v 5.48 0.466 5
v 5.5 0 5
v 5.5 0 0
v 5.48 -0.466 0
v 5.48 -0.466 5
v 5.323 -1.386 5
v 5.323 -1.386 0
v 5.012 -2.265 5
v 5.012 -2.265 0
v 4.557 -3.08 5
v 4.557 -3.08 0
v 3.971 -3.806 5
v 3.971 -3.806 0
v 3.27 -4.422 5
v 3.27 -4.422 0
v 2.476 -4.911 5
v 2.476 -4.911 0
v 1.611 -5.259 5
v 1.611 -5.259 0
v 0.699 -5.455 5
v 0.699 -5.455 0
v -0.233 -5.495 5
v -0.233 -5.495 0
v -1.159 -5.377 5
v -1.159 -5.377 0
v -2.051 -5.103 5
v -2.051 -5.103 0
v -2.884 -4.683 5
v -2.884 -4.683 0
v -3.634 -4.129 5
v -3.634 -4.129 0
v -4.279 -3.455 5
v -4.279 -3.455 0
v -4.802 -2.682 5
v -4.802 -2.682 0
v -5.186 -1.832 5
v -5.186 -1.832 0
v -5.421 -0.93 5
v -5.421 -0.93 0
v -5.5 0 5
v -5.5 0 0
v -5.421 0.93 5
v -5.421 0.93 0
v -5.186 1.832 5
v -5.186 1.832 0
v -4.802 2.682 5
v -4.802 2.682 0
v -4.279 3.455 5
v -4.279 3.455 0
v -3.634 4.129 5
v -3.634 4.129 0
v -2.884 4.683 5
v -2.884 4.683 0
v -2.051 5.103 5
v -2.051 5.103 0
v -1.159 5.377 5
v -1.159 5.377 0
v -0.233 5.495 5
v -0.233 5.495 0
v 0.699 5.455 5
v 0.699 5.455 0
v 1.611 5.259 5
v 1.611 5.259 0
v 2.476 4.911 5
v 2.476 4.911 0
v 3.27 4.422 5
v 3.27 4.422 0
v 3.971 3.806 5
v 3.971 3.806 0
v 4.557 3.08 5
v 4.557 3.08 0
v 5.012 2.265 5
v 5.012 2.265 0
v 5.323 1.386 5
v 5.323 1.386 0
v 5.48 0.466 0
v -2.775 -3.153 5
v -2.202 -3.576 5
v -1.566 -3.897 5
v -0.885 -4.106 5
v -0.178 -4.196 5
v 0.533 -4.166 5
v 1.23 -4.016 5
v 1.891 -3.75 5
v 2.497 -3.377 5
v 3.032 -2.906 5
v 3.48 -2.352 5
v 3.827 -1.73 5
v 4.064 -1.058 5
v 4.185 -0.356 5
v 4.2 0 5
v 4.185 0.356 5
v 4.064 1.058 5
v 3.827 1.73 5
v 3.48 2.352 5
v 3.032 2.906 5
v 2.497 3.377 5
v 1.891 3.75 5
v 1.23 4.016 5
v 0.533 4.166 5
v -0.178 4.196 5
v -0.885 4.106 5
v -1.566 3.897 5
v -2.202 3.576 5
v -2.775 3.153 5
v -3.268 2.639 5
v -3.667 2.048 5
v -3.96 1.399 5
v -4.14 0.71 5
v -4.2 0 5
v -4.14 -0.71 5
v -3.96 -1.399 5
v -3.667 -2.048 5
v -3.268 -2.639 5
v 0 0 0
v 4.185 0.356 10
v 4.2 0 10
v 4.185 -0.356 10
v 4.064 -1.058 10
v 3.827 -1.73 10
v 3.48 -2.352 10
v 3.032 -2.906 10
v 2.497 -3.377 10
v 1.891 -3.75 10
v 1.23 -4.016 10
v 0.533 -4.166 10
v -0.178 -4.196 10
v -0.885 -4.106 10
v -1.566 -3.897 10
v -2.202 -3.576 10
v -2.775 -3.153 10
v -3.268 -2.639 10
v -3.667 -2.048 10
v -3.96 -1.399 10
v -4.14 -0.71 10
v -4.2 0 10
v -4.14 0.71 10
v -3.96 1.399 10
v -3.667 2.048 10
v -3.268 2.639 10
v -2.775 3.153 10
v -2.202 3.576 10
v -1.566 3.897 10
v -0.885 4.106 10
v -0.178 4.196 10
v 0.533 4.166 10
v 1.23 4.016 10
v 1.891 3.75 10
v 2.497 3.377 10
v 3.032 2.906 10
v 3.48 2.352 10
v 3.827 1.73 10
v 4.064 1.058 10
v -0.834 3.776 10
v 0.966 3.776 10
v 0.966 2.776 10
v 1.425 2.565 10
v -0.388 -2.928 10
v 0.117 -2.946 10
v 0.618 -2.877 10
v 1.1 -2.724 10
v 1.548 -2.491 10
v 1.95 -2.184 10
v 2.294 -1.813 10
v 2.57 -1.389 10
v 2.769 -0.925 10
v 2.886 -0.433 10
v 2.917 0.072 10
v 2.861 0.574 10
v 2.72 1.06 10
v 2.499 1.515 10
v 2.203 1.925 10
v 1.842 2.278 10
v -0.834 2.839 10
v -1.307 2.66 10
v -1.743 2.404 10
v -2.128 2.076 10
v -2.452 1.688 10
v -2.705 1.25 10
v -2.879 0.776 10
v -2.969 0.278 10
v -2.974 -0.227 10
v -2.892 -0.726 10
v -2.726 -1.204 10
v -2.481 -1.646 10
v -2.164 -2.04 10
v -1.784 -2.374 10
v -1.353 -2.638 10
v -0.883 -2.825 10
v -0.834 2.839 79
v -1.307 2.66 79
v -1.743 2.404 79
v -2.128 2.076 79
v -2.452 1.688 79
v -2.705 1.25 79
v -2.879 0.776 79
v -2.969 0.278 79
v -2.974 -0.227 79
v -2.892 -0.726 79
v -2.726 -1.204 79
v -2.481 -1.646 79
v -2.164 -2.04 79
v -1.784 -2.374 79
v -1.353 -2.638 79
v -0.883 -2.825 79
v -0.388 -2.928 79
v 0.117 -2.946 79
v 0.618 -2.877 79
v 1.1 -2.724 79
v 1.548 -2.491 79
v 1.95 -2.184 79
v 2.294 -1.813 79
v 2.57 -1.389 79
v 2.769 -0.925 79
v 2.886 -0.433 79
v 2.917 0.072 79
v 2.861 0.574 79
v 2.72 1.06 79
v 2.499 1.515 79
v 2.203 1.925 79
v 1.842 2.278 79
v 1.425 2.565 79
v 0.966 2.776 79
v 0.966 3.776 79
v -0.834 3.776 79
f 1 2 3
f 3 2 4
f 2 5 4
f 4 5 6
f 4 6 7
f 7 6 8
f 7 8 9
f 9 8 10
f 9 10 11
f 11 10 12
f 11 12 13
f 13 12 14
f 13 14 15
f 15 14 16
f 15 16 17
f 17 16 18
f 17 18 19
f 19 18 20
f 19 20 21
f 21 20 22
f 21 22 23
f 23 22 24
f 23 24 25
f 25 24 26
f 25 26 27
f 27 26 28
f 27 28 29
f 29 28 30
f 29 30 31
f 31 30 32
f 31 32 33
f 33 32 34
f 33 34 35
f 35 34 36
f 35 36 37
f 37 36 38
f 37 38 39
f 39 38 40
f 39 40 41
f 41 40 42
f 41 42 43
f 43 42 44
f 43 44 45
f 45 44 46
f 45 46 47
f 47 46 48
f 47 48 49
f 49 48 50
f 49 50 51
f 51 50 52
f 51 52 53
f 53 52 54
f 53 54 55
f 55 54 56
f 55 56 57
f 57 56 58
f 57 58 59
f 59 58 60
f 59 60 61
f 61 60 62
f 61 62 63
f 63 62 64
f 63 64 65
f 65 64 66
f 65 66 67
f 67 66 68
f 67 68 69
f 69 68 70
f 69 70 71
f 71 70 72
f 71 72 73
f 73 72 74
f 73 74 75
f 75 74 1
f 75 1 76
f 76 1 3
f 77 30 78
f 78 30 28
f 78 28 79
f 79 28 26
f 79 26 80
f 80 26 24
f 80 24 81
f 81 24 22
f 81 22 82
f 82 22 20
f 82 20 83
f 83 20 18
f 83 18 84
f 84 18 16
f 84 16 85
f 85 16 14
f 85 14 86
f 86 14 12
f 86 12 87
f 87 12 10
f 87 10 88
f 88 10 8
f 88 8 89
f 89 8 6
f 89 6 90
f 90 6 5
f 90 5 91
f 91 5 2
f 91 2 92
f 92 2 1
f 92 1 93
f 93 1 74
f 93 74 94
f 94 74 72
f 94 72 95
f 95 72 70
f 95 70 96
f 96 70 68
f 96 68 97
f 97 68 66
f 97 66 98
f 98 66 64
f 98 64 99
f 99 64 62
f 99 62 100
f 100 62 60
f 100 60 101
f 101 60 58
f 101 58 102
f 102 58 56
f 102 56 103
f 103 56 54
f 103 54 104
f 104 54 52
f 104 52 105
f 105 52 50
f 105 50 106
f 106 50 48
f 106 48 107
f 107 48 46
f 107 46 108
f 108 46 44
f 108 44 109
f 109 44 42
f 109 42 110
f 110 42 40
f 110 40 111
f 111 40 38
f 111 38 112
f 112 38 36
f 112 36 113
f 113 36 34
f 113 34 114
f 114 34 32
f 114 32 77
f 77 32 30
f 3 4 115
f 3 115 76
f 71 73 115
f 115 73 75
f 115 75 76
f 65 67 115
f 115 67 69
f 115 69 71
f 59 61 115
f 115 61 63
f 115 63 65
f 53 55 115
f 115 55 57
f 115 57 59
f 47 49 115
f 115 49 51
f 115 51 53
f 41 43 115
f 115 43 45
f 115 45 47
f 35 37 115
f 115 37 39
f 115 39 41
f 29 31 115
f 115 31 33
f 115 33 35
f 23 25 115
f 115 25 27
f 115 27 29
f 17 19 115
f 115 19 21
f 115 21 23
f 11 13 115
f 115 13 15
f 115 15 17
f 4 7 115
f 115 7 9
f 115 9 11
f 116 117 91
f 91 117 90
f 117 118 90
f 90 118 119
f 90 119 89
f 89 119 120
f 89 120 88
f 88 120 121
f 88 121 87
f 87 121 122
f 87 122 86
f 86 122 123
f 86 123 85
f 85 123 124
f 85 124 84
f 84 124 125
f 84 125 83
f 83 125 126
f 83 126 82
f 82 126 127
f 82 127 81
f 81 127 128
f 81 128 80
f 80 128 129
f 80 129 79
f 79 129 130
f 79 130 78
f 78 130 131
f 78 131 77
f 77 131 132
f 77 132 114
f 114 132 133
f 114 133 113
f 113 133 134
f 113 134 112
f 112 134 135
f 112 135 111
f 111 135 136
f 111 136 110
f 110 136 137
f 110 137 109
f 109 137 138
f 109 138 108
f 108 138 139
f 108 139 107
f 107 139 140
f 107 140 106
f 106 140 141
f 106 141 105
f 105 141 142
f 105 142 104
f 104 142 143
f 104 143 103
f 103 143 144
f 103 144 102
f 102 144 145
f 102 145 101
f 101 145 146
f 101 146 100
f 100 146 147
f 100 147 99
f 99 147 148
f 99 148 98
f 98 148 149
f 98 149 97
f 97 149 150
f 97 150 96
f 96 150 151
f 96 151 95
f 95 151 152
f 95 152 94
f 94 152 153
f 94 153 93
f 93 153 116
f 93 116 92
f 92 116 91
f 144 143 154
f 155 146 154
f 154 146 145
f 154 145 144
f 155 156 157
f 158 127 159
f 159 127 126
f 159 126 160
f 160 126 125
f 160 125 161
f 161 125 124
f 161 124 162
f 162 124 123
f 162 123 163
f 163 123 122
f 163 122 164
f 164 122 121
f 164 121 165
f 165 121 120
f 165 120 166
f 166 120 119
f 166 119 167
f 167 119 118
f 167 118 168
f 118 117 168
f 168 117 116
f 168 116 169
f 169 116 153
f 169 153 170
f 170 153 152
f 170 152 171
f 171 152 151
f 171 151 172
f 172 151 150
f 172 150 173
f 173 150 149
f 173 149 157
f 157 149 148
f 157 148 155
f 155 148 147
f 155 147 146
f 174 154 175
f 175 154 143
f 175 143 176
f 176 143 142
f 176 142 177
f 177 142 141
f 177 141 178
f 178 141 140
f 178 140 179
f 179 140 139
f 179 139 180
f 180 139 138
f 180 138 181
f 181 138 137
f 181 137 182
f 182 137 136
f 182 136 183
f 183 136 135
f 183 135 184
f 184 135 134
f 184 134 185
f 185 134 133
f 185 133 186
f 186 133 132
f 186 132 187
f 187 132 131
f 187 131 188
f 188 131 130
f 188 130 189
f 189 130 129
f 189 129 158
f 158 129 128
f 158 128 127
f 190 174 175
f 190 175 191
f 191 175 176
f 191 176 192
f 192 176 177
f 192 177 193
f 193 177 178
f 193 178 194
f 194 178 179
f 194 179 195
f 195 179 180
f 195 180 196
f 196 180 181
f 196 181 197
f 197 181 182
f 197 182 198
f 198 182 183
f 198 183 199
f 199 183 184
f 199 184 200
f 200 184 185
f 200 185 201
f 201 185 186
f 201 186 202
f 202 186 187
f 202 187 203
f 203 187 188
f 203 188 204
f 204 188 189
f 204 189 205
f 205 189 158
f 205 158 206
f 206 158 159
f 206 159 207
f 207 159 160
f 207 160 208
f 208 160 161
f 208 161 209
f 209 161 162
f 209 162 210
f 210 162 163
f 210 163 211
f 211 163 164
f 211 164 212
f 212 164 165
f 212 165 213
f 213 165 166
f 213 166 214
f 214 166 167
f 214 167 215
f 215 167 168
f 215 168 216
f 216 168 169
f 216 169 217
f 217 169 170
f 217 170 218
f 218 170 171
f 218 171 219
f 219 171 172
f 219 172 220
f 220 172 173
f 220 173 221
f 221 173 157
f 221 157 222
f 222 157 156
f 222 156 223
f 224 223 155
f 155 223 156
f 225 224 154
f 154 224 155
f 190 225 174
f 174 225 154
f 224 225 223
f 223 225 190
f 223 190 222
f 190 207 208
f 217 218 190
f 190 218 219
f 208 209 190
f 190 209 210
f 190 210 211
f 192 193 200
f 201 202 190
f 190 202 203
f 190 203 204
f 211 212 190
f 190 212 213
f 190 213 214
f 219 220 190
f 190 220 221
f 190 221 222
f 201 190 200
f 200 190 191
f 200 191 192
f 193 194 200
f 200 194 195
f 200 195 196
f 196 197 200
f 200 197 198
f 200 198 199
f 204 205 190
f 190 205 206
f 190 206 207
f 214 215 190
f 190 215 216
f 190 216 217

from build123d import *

# Parameters (mm, degrees)
SKETCH1_R           = 5.5
BOSS_EXTRUDE1_DEPTH = 5
SKETCH3_R           = 4.2
BOSS_EXTRUDE3_DEPTH = 5
BOSS_EXTRUDE2_DEPTH = 69


with BuildPart() as part:
    # Sketch1 → Boss-Extrude1 (new body)
    with BuildSketch(Plane(origin=(0, 0, 0), x_dir=(0, 1, 0), z_dir=(0, 0, 1))):
        with Locations(Location((0, 0, 0), (0, 0, 270))):
            Circle(SKETCH1_R)
    extrude(amount=BOSS_EXTRUDE1_DEPTH)

    # Sketch3 → Boss-Extrude3 (add)
    with BuildSketch(Plane.XY.offset(5)):
        Circle(SKETCH3_R)
    extrude(amount=BOSS_EXTRUDE3_DEPTH)

    # Sketch2 → Boss-Extrude2 (add)
    with BuildSketch(Plane.XY.offset(10)):
        with BuildLine():
            Line((-0.834166667, 3.775921626), (0.965833333, 3.775921626))
            Line((0.965833333, 3.775921626), (0.965833333, 2.775921626))
            ThreePointArc((0.965833333, 2.775921626), (-0.13585463, -2.948190479), (-0.834166667, 2.838996753))
            Line((-0.834166667, 2.838996753), (-0.834166667, 3.775921626))
        make_face()
    extrude(amount=BOSS_EXTRUDE2_DEPTH)


solid = part.part
